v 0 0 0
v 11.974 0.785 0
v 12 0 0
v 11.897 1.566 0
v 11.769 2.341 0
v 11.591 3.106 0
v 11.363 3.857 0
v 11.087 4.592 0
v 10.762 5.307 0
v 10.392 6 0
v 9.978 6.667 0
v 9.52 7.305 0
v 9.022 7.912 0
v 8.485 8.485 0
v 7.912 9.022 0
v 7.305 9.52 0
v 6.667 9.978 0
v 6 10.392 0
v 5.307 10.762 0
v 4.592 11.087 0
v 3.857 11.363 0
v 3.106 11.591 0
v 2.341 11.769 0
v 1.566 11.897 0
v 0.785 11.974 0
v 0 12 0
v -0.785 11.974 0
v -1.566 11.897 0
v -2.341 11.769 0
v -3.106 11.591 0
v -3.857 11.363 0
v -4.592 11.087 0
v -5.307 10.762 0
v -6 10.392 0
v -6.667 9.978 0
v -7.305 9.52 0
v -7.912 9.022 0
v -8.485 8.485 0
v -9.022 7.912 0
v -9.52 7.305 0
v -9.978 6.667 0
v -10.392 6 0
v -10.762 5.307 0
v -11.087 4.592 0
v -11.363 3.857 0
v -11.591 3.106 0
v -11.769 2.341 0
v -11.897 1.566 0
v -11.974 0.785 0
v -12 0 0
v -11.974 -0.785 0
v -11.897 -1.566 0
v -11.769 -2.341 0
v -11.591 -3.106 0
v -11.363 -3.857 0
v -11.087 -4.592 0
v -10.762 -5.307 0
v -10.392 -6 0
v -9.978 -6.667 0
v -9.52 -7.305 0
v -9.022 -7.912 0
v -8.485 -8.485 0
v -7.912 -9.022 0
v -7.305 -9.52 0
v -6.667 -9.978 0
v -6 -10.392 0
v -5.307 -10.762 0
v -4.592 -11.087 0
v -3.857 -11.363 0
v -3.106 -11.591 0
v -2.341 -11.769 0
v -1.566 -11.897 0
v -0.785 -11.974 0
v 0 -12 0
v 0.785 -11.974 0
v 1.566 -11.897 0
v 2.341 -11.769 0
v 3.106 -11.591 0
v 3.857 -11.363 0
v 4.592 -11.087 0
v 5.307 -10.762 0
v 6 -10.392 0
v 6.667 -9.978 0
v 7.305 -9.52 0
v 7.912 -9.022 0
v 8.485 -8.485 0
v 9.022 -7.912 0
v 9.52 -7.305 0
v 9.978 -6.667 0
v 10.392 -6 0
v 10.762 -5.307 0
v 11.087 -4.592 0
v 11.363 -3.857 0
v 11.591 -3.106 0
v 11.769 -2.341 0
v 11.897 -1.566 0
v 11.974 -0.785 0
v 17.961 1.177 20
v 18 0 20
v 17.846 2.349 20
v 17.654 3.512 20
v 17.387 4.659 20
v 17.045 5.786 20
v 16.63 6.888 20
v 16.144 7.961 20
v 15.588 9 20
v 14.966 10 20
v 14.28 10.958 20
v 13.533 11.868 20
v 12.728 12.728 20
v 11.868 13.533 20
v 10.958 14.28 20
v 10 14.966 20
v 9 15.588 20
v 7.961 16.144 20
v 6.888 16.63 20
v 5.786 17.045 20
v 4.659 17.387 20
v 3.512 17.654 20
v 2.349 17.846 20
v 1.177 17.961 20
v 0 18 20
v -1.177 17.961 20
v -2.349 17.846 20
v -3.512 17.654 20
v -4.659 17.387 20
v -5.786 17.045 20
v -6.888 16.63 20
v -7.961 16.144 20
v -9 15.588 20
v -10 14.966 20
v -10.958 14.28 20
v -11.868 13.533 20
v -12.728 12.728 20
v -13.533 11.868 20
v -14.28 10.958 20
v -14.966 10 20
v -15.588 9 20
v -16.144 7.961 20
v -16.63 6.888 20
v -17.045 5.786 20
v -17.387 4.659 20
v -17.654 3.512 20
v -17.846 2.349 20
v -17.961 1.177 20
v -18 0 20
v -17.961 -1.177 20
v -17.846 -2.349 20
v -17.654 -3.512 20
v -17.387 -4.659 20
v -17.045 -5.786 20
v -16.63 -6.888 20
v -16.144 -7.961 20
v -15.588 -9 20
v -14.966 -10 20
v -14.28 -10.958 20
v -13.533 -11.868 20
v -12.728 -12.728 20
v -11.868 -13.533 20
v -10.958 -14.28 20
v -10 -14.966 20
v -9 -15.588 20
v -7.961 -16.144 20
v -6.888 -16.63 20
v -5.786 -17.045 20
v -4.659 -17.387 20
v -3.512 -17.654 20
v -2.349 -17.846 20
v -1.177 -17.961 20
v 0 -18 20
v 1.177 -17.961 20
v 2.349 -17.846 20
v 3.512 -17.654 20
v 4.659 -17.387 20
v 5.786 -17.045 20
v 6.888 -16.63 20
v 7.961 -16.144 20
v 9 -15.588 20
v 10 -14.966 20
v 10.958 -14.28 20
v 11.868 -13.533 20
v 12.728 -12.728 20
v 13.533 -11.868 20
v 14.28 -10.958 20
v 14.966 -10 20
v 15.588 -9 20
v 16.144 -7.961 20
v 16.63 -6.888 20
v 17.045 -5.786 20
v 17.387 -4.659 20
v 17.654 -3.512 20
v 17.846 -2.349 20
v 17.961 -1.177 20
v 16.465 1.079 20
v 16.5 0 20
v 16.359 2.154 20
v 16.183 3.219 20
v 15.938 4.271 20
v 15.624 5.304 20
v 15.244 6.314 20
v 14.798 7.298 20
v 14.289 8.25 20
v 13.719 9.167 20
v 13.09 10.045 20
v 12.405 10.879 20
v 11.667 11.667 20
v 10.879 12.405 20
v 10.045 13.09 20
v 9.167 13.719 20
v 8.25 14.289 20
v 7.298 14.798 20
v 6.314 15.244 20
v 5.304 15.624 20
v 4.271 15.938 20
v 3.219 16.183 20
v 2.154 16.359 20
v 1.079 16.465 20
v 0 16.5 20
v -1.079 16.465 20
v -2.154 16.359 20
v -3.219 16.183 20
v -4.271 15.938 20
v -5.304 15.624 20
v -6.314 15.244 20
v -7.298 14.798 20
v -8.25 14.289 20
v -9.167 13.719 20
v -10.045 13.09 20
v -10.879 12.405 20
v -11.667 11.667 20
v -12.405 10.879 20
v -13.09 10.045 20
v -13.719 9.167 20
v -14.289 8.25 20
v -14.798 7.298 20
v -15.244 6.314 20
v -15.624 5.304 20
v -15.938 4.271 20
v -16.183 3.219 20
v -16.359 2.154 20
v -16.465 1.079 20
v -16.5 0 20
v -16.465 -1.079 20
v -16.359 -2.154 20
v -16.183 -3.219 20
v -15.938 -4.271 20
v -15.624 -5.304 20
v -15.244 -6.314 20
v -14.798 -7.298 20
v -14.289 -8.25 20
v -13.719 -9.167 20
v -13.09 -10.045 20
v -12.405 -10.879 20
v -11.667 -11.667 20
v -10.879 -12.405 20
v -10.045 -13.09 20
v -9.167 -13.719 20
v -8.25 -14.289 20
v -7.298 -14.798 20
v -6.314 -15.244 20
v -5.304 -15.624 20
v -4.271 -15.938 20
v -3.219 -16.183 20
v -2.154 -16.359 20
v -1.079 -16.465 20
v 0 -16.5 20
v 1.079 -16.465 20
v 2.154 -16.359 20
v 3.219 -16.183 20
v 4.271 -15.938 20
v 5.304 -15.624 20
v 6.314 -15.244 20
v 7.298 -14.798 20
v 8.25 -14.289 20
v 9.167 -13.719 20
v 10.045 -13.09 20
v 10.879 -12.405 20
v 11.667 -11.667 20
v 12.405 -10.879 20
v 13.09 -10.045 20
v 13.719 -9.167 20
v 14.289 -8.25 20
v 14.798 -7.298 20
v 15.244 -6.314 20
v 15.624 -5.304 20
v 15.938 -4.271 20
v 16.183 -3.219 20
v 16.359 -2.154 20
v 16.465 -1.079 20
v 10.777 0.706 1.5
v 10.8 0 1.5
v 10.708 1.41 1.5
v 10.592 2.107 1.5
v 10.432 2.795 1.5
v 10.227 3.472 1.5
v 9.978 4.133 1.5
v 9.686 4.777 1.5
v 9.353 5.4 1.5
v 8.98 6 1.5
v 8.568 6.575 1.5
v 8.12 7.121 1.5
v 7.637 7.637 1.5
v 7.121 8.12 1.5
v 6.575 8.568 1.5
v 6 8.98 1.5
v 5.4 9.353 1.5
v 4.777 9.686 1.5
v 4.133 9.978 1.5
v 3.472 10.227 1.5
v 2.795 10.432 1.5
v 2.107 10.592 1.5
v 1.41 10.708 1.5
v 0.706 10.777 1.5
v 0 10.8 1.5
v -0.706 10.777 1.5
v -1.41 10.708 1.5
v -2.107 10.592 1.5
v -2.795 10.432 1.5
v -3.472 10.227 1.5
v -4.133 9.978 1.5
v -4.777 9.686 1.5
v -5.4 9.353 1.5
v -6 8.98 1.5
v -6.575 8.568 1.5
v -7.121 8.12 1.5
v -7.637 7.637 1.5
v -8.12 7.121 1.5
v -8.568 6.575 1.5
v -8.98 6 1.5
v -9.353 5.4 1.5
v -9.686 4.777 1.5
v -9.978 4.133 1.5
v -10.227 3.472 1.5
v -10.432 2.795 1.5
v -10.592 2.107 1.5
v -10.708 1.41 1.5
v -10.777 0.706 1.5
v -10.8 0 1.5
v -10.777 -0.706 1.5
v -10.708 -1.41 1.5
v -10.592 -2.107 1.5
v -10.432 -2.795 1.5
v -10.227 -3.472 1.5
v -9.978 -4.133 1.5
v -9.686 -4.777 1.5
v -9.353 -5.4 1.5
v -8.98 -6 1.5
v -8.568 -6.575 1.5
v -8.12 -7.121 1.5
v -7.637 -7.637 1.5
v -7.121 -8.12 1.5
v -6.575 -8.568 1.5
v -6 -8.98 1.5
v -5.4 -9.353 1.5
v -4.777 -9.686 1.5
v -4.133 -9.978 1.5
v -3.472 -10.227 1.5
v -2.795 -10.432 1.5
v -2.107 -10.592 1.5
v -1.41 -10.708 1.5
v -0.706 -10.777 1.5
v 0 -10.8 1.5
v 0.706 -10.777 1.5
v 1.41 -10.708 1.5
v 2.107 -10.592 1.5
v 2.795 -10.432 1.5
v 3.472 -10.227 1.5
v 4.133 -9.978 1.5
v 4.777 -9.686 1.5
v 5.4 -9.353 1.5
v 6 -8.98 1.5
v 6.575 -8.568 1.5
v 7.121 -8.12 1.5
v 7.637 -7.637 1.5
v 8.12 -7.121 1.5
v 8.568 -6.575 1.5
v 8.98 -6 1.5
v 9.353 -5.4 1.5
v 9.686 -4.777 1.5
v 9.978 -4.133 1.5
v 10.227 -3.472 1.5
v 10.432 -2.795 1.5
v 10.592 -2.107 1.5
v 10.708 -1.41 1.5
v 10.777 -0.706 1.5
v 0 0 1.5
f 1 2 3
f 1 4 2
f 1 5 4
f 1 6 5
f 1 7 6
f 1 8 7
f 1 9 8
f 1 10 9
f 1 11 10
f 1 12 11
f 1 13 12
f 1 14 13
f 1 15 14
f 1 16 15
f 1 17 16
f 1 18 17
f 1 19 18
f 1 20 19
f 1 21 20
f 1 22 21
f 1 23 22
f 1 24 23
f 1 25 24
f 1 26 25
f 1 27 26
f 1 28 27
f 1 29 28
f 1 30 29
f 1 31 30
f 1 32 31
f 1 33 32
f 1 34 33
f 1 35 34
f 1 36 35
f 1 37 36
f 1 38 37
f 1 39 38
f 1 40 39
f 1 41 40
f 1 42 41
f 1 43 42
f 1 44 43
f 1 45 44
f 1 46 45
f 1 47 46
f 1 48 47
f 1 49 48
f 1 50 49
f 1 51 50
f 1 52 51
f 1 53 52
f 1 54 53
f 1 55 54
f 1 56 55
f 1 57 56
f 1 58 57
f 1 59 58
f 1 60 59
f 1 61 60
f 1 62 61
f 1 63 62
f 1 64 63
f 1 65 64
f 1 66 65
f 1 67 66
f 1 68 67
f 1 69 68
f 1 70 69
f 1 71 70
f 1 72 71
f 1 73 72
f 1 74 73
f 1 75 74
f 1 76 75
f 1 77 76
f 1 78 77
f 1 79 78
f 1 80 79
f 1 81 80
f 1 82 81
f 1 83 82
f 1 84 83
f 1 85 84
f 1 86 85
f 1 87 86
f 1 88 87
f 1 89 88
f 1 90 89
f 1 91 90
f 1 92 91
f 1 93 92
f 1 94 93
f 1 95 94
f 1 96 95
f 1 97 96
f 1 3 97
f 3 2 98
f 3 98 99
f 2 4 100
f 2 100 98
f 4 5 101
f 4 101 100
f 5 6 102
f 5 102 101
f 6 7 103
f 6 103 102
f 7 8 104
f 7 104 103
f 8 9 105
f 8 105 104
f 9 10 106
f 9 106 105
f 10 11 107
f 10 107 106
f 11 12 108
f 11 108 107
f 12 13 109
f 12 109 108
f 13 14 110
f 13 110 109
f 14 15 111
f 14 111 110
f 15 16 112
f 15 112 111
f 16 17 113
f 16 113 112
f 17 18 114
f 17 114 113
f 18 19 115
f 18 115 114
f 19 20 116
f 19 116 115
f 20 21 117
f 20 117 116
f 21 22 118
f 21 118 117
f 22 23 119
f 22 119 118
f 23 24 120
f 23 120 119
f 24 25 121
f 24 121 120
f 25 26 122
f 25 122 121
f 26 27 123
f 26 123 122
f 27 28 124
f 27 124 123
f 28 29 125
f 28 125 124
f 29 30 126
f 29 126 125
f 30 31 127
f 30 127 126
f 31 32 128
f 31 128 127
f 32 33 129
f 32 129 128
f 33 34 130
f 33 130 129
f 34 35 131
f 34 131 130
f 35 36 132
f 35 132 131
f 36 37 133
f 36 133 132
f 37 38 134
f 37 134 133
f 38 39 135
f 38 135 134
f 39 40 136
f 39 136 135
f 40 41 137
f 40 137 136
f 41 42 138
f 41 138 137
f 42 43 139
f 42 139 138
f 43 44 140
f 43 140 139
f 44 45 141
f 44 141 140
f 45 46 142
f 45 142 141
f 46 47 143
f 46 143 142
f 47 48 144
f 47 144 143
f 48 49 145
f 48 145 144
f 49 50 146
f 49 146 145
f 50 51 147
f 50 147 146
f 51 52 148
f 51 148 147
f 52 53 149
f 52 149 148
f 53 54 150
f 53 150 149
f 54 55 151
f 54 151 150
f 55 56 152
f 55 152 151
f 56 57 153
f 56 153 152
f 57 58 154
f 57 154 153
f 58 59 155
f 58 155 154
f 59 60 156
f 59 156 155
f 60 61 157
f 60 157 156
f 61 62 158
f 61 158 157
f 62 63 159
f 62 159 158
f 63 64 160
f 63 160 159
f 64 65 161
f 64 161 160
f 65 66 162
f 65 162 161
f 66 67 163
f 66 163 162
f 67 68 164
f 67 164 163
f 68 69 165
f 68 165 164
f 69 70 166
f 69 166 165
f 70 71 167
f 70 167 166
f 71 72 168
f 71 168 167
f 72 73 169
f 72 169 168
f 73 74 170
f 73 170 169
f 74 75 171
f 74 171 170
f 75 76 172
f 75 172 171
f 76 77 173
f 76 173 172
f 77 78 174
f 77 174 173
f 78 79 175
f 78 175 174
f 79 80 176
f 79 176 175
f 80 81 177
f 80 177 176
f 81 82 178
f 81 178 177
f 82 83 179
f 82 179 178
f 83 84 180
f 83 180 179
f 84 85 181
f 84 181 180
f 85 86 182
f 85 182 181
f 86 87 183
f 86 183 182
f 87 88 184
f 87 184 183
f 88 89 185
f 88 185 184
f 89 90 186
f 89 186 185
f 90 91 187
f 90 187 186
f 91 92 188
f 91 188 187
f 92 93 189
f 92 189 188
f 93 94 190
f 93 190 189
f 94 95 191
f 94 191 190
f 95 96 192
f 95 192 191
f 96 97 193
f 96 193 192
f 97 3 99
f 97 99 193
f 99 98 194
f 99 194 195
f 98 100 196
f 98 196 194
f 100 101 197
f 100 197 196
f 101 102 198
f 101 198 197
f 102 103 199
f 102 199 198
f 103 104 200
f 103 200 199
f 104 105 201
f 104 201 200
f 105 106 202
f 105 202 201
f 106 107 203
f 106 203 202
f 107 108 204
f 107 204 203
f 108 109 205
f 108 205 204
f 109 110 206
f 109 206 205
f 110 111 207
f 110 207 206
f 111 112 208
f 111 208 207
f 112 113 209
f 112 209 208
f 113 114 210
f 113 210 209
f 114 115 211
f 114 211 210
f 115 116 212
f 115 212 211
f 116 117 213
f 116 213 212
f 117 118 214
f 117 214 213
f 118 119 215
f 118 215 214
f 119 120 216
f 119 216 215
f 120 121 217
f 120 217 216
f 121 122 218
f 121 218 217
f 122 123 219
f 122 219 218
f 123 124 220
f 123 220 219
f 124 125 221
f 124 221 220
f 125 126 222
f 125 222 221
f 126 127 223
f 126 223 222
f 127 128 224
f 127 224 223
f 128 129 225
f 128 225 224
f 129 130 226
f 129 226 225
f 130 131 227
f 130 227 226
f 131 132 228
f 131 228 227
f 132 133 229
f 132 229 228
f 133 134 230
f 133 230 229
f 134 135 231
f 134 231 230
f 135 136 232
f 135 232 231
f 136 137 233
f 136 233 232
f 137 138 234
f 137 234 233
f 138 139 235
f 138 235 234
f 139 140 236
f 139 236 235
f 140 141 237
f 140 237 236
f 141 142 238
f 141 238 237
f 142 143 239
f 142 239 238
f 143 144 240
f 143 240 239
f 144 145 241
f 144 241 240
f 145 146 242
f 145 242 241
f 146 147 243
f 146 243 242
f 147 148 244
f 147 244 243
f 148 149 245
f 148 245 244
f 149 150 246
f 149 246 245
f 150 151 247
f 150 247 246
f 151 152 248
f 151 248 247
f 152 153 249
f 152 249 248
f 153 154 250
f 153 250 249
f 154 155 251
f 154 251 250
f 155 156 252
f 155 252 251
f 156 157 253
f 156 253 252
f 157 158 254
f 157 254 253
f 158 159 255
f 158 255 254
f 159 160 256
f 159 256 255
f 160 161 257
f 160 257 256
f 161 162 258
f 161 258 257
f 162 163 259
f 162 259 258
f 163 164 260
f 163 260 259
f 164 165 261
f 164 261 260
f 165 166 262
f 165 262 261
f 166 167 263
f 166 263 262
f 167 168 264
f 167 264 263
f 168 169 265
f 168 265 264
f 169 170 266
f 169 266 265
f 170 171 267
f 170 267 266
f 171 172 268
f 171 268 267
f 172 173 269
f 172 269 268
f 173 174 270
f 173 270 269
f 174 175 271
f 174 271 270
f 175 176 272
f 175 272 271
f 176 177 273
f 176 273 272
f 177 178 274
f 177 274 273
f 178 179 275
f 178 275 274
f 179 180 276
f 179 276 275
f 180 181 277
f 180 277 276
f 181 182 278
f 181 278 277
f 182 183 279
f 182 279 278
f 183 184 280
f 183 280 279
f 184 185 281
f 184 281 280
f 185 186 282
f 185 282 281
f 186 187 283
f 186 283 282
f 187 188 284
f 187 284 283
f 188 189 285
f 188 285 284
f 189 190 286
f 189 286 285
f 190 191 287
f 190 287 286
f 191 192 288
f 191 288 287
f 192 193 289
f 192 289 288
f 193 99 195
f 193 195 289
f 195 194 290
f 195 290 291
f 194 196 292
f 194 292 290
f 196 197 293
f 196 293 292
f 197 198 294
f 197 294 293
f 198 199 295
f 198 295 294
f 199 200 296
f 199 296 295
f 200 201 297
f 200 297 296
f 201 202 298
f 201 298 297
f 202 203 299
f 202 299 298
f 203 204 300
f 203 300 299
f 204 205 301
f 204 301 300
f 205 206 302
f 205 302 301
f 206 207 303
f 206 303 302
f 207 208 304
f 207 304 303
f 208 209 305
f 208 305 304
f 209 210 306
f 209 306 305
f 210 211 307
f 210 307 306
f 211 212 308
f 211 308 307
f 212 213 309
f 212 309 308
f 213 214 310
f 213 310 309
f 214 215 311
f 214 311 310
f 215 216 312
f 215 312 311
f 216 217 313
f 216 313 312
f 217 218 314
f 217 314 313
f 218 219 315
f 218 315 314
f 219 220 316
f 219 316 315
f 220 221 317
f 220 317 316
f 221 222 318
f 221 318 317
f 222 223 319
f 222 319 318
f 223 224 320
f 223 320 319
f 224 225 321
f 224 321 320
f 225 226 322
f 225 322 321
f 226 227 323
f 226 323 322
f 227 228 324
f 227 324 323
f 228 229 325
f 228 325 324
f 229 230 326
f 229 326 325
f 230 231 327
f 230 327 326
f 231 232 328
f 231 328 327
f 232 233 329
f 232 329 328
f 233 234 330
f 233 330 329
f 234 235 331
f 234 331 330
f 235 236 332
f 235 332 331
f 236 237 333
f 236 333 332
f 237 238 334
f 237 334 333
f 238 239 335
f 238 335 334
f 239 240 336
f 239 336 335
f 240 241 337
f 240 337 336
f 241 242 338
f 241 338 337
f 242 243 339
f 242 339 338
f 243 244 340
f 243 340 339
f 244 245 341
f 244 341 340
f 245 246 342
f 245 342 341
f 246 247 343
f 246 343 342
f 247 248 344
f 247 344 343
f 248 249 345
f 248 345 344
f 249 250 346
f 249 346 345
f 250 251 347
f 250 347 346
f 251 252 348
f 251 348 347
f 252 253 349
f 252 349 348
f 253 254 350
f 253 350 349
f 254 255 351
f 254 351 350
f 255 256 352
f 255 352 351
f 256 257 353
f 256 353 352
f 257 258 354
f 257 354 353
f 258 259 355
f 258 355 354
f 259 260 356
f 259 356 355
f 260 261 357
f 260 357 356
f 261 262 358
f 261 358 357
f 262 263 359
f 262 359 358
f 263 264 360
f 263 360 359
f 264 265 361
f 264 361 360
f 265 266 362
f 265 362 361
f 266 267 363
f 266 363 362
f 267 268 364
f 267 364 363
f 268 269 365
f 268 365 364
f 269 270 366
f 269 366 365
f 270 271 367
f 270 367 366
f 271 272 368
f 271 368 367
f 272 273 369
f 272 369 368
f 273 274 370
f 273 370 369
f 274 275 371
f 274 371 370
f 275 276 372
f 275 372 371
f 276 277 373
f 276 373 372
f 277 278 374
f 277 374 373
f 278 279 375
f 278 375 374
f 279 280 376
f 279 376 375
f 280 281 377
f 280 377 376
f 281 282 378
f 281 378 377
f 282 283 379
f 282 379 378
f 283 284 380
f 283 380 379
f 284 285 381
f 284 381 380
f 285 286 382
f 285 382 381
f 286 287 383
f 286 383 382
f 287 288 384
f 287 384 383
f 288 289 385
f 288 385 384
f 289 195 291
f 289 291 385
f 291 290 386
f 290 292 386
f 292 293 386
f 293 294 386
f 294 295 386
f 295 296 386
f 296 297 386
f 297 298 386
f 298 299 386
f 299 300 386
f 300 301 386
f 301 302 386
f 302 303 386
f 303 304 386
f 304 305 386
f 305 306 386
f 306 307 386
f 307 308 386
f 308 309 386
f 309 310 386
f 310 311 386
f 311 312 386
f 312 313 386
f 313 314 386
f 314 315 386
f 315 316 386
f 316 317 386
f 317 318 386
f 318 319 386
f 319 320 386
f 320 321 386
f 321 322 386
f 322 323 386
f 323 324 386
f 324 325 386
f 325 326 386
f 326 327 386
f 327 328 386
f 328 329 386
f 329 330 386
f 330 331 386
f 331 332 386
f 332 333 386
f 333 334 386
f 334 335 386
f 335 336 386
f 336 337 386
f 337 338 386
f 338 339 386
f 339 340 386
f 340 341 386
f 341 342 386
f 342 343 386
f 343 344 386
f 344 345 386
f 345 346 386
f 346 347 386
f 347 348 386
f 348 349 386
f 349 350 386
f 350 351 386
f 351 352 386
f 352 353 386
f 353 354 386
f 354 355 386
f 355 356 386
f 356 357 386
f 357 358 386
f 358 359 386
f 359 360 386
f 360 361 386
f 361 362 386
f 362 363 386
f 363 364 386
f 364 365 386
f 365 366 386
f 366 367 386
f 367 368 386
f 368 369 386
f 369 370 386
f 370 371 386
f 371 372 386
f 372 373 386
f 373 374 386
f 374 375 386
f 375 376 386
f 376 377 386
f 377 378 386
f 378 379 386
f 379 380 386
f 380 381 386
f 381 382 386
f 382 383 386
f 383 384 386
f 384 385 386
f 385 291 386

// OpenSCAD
// Original MechIntel educational model. CC0-1.0. Units: mm.
// Not a standardized or load-rated component.
$fn=96;
// Section points: [radius, height], mm. Edit to change the profile.
section=[[0, 0], [12, 0], [18, 20], [16.5, 20], [10.8, 1.5], [0, 1.5]];
rotate_extrude($fn=96) polygon(points=section);
